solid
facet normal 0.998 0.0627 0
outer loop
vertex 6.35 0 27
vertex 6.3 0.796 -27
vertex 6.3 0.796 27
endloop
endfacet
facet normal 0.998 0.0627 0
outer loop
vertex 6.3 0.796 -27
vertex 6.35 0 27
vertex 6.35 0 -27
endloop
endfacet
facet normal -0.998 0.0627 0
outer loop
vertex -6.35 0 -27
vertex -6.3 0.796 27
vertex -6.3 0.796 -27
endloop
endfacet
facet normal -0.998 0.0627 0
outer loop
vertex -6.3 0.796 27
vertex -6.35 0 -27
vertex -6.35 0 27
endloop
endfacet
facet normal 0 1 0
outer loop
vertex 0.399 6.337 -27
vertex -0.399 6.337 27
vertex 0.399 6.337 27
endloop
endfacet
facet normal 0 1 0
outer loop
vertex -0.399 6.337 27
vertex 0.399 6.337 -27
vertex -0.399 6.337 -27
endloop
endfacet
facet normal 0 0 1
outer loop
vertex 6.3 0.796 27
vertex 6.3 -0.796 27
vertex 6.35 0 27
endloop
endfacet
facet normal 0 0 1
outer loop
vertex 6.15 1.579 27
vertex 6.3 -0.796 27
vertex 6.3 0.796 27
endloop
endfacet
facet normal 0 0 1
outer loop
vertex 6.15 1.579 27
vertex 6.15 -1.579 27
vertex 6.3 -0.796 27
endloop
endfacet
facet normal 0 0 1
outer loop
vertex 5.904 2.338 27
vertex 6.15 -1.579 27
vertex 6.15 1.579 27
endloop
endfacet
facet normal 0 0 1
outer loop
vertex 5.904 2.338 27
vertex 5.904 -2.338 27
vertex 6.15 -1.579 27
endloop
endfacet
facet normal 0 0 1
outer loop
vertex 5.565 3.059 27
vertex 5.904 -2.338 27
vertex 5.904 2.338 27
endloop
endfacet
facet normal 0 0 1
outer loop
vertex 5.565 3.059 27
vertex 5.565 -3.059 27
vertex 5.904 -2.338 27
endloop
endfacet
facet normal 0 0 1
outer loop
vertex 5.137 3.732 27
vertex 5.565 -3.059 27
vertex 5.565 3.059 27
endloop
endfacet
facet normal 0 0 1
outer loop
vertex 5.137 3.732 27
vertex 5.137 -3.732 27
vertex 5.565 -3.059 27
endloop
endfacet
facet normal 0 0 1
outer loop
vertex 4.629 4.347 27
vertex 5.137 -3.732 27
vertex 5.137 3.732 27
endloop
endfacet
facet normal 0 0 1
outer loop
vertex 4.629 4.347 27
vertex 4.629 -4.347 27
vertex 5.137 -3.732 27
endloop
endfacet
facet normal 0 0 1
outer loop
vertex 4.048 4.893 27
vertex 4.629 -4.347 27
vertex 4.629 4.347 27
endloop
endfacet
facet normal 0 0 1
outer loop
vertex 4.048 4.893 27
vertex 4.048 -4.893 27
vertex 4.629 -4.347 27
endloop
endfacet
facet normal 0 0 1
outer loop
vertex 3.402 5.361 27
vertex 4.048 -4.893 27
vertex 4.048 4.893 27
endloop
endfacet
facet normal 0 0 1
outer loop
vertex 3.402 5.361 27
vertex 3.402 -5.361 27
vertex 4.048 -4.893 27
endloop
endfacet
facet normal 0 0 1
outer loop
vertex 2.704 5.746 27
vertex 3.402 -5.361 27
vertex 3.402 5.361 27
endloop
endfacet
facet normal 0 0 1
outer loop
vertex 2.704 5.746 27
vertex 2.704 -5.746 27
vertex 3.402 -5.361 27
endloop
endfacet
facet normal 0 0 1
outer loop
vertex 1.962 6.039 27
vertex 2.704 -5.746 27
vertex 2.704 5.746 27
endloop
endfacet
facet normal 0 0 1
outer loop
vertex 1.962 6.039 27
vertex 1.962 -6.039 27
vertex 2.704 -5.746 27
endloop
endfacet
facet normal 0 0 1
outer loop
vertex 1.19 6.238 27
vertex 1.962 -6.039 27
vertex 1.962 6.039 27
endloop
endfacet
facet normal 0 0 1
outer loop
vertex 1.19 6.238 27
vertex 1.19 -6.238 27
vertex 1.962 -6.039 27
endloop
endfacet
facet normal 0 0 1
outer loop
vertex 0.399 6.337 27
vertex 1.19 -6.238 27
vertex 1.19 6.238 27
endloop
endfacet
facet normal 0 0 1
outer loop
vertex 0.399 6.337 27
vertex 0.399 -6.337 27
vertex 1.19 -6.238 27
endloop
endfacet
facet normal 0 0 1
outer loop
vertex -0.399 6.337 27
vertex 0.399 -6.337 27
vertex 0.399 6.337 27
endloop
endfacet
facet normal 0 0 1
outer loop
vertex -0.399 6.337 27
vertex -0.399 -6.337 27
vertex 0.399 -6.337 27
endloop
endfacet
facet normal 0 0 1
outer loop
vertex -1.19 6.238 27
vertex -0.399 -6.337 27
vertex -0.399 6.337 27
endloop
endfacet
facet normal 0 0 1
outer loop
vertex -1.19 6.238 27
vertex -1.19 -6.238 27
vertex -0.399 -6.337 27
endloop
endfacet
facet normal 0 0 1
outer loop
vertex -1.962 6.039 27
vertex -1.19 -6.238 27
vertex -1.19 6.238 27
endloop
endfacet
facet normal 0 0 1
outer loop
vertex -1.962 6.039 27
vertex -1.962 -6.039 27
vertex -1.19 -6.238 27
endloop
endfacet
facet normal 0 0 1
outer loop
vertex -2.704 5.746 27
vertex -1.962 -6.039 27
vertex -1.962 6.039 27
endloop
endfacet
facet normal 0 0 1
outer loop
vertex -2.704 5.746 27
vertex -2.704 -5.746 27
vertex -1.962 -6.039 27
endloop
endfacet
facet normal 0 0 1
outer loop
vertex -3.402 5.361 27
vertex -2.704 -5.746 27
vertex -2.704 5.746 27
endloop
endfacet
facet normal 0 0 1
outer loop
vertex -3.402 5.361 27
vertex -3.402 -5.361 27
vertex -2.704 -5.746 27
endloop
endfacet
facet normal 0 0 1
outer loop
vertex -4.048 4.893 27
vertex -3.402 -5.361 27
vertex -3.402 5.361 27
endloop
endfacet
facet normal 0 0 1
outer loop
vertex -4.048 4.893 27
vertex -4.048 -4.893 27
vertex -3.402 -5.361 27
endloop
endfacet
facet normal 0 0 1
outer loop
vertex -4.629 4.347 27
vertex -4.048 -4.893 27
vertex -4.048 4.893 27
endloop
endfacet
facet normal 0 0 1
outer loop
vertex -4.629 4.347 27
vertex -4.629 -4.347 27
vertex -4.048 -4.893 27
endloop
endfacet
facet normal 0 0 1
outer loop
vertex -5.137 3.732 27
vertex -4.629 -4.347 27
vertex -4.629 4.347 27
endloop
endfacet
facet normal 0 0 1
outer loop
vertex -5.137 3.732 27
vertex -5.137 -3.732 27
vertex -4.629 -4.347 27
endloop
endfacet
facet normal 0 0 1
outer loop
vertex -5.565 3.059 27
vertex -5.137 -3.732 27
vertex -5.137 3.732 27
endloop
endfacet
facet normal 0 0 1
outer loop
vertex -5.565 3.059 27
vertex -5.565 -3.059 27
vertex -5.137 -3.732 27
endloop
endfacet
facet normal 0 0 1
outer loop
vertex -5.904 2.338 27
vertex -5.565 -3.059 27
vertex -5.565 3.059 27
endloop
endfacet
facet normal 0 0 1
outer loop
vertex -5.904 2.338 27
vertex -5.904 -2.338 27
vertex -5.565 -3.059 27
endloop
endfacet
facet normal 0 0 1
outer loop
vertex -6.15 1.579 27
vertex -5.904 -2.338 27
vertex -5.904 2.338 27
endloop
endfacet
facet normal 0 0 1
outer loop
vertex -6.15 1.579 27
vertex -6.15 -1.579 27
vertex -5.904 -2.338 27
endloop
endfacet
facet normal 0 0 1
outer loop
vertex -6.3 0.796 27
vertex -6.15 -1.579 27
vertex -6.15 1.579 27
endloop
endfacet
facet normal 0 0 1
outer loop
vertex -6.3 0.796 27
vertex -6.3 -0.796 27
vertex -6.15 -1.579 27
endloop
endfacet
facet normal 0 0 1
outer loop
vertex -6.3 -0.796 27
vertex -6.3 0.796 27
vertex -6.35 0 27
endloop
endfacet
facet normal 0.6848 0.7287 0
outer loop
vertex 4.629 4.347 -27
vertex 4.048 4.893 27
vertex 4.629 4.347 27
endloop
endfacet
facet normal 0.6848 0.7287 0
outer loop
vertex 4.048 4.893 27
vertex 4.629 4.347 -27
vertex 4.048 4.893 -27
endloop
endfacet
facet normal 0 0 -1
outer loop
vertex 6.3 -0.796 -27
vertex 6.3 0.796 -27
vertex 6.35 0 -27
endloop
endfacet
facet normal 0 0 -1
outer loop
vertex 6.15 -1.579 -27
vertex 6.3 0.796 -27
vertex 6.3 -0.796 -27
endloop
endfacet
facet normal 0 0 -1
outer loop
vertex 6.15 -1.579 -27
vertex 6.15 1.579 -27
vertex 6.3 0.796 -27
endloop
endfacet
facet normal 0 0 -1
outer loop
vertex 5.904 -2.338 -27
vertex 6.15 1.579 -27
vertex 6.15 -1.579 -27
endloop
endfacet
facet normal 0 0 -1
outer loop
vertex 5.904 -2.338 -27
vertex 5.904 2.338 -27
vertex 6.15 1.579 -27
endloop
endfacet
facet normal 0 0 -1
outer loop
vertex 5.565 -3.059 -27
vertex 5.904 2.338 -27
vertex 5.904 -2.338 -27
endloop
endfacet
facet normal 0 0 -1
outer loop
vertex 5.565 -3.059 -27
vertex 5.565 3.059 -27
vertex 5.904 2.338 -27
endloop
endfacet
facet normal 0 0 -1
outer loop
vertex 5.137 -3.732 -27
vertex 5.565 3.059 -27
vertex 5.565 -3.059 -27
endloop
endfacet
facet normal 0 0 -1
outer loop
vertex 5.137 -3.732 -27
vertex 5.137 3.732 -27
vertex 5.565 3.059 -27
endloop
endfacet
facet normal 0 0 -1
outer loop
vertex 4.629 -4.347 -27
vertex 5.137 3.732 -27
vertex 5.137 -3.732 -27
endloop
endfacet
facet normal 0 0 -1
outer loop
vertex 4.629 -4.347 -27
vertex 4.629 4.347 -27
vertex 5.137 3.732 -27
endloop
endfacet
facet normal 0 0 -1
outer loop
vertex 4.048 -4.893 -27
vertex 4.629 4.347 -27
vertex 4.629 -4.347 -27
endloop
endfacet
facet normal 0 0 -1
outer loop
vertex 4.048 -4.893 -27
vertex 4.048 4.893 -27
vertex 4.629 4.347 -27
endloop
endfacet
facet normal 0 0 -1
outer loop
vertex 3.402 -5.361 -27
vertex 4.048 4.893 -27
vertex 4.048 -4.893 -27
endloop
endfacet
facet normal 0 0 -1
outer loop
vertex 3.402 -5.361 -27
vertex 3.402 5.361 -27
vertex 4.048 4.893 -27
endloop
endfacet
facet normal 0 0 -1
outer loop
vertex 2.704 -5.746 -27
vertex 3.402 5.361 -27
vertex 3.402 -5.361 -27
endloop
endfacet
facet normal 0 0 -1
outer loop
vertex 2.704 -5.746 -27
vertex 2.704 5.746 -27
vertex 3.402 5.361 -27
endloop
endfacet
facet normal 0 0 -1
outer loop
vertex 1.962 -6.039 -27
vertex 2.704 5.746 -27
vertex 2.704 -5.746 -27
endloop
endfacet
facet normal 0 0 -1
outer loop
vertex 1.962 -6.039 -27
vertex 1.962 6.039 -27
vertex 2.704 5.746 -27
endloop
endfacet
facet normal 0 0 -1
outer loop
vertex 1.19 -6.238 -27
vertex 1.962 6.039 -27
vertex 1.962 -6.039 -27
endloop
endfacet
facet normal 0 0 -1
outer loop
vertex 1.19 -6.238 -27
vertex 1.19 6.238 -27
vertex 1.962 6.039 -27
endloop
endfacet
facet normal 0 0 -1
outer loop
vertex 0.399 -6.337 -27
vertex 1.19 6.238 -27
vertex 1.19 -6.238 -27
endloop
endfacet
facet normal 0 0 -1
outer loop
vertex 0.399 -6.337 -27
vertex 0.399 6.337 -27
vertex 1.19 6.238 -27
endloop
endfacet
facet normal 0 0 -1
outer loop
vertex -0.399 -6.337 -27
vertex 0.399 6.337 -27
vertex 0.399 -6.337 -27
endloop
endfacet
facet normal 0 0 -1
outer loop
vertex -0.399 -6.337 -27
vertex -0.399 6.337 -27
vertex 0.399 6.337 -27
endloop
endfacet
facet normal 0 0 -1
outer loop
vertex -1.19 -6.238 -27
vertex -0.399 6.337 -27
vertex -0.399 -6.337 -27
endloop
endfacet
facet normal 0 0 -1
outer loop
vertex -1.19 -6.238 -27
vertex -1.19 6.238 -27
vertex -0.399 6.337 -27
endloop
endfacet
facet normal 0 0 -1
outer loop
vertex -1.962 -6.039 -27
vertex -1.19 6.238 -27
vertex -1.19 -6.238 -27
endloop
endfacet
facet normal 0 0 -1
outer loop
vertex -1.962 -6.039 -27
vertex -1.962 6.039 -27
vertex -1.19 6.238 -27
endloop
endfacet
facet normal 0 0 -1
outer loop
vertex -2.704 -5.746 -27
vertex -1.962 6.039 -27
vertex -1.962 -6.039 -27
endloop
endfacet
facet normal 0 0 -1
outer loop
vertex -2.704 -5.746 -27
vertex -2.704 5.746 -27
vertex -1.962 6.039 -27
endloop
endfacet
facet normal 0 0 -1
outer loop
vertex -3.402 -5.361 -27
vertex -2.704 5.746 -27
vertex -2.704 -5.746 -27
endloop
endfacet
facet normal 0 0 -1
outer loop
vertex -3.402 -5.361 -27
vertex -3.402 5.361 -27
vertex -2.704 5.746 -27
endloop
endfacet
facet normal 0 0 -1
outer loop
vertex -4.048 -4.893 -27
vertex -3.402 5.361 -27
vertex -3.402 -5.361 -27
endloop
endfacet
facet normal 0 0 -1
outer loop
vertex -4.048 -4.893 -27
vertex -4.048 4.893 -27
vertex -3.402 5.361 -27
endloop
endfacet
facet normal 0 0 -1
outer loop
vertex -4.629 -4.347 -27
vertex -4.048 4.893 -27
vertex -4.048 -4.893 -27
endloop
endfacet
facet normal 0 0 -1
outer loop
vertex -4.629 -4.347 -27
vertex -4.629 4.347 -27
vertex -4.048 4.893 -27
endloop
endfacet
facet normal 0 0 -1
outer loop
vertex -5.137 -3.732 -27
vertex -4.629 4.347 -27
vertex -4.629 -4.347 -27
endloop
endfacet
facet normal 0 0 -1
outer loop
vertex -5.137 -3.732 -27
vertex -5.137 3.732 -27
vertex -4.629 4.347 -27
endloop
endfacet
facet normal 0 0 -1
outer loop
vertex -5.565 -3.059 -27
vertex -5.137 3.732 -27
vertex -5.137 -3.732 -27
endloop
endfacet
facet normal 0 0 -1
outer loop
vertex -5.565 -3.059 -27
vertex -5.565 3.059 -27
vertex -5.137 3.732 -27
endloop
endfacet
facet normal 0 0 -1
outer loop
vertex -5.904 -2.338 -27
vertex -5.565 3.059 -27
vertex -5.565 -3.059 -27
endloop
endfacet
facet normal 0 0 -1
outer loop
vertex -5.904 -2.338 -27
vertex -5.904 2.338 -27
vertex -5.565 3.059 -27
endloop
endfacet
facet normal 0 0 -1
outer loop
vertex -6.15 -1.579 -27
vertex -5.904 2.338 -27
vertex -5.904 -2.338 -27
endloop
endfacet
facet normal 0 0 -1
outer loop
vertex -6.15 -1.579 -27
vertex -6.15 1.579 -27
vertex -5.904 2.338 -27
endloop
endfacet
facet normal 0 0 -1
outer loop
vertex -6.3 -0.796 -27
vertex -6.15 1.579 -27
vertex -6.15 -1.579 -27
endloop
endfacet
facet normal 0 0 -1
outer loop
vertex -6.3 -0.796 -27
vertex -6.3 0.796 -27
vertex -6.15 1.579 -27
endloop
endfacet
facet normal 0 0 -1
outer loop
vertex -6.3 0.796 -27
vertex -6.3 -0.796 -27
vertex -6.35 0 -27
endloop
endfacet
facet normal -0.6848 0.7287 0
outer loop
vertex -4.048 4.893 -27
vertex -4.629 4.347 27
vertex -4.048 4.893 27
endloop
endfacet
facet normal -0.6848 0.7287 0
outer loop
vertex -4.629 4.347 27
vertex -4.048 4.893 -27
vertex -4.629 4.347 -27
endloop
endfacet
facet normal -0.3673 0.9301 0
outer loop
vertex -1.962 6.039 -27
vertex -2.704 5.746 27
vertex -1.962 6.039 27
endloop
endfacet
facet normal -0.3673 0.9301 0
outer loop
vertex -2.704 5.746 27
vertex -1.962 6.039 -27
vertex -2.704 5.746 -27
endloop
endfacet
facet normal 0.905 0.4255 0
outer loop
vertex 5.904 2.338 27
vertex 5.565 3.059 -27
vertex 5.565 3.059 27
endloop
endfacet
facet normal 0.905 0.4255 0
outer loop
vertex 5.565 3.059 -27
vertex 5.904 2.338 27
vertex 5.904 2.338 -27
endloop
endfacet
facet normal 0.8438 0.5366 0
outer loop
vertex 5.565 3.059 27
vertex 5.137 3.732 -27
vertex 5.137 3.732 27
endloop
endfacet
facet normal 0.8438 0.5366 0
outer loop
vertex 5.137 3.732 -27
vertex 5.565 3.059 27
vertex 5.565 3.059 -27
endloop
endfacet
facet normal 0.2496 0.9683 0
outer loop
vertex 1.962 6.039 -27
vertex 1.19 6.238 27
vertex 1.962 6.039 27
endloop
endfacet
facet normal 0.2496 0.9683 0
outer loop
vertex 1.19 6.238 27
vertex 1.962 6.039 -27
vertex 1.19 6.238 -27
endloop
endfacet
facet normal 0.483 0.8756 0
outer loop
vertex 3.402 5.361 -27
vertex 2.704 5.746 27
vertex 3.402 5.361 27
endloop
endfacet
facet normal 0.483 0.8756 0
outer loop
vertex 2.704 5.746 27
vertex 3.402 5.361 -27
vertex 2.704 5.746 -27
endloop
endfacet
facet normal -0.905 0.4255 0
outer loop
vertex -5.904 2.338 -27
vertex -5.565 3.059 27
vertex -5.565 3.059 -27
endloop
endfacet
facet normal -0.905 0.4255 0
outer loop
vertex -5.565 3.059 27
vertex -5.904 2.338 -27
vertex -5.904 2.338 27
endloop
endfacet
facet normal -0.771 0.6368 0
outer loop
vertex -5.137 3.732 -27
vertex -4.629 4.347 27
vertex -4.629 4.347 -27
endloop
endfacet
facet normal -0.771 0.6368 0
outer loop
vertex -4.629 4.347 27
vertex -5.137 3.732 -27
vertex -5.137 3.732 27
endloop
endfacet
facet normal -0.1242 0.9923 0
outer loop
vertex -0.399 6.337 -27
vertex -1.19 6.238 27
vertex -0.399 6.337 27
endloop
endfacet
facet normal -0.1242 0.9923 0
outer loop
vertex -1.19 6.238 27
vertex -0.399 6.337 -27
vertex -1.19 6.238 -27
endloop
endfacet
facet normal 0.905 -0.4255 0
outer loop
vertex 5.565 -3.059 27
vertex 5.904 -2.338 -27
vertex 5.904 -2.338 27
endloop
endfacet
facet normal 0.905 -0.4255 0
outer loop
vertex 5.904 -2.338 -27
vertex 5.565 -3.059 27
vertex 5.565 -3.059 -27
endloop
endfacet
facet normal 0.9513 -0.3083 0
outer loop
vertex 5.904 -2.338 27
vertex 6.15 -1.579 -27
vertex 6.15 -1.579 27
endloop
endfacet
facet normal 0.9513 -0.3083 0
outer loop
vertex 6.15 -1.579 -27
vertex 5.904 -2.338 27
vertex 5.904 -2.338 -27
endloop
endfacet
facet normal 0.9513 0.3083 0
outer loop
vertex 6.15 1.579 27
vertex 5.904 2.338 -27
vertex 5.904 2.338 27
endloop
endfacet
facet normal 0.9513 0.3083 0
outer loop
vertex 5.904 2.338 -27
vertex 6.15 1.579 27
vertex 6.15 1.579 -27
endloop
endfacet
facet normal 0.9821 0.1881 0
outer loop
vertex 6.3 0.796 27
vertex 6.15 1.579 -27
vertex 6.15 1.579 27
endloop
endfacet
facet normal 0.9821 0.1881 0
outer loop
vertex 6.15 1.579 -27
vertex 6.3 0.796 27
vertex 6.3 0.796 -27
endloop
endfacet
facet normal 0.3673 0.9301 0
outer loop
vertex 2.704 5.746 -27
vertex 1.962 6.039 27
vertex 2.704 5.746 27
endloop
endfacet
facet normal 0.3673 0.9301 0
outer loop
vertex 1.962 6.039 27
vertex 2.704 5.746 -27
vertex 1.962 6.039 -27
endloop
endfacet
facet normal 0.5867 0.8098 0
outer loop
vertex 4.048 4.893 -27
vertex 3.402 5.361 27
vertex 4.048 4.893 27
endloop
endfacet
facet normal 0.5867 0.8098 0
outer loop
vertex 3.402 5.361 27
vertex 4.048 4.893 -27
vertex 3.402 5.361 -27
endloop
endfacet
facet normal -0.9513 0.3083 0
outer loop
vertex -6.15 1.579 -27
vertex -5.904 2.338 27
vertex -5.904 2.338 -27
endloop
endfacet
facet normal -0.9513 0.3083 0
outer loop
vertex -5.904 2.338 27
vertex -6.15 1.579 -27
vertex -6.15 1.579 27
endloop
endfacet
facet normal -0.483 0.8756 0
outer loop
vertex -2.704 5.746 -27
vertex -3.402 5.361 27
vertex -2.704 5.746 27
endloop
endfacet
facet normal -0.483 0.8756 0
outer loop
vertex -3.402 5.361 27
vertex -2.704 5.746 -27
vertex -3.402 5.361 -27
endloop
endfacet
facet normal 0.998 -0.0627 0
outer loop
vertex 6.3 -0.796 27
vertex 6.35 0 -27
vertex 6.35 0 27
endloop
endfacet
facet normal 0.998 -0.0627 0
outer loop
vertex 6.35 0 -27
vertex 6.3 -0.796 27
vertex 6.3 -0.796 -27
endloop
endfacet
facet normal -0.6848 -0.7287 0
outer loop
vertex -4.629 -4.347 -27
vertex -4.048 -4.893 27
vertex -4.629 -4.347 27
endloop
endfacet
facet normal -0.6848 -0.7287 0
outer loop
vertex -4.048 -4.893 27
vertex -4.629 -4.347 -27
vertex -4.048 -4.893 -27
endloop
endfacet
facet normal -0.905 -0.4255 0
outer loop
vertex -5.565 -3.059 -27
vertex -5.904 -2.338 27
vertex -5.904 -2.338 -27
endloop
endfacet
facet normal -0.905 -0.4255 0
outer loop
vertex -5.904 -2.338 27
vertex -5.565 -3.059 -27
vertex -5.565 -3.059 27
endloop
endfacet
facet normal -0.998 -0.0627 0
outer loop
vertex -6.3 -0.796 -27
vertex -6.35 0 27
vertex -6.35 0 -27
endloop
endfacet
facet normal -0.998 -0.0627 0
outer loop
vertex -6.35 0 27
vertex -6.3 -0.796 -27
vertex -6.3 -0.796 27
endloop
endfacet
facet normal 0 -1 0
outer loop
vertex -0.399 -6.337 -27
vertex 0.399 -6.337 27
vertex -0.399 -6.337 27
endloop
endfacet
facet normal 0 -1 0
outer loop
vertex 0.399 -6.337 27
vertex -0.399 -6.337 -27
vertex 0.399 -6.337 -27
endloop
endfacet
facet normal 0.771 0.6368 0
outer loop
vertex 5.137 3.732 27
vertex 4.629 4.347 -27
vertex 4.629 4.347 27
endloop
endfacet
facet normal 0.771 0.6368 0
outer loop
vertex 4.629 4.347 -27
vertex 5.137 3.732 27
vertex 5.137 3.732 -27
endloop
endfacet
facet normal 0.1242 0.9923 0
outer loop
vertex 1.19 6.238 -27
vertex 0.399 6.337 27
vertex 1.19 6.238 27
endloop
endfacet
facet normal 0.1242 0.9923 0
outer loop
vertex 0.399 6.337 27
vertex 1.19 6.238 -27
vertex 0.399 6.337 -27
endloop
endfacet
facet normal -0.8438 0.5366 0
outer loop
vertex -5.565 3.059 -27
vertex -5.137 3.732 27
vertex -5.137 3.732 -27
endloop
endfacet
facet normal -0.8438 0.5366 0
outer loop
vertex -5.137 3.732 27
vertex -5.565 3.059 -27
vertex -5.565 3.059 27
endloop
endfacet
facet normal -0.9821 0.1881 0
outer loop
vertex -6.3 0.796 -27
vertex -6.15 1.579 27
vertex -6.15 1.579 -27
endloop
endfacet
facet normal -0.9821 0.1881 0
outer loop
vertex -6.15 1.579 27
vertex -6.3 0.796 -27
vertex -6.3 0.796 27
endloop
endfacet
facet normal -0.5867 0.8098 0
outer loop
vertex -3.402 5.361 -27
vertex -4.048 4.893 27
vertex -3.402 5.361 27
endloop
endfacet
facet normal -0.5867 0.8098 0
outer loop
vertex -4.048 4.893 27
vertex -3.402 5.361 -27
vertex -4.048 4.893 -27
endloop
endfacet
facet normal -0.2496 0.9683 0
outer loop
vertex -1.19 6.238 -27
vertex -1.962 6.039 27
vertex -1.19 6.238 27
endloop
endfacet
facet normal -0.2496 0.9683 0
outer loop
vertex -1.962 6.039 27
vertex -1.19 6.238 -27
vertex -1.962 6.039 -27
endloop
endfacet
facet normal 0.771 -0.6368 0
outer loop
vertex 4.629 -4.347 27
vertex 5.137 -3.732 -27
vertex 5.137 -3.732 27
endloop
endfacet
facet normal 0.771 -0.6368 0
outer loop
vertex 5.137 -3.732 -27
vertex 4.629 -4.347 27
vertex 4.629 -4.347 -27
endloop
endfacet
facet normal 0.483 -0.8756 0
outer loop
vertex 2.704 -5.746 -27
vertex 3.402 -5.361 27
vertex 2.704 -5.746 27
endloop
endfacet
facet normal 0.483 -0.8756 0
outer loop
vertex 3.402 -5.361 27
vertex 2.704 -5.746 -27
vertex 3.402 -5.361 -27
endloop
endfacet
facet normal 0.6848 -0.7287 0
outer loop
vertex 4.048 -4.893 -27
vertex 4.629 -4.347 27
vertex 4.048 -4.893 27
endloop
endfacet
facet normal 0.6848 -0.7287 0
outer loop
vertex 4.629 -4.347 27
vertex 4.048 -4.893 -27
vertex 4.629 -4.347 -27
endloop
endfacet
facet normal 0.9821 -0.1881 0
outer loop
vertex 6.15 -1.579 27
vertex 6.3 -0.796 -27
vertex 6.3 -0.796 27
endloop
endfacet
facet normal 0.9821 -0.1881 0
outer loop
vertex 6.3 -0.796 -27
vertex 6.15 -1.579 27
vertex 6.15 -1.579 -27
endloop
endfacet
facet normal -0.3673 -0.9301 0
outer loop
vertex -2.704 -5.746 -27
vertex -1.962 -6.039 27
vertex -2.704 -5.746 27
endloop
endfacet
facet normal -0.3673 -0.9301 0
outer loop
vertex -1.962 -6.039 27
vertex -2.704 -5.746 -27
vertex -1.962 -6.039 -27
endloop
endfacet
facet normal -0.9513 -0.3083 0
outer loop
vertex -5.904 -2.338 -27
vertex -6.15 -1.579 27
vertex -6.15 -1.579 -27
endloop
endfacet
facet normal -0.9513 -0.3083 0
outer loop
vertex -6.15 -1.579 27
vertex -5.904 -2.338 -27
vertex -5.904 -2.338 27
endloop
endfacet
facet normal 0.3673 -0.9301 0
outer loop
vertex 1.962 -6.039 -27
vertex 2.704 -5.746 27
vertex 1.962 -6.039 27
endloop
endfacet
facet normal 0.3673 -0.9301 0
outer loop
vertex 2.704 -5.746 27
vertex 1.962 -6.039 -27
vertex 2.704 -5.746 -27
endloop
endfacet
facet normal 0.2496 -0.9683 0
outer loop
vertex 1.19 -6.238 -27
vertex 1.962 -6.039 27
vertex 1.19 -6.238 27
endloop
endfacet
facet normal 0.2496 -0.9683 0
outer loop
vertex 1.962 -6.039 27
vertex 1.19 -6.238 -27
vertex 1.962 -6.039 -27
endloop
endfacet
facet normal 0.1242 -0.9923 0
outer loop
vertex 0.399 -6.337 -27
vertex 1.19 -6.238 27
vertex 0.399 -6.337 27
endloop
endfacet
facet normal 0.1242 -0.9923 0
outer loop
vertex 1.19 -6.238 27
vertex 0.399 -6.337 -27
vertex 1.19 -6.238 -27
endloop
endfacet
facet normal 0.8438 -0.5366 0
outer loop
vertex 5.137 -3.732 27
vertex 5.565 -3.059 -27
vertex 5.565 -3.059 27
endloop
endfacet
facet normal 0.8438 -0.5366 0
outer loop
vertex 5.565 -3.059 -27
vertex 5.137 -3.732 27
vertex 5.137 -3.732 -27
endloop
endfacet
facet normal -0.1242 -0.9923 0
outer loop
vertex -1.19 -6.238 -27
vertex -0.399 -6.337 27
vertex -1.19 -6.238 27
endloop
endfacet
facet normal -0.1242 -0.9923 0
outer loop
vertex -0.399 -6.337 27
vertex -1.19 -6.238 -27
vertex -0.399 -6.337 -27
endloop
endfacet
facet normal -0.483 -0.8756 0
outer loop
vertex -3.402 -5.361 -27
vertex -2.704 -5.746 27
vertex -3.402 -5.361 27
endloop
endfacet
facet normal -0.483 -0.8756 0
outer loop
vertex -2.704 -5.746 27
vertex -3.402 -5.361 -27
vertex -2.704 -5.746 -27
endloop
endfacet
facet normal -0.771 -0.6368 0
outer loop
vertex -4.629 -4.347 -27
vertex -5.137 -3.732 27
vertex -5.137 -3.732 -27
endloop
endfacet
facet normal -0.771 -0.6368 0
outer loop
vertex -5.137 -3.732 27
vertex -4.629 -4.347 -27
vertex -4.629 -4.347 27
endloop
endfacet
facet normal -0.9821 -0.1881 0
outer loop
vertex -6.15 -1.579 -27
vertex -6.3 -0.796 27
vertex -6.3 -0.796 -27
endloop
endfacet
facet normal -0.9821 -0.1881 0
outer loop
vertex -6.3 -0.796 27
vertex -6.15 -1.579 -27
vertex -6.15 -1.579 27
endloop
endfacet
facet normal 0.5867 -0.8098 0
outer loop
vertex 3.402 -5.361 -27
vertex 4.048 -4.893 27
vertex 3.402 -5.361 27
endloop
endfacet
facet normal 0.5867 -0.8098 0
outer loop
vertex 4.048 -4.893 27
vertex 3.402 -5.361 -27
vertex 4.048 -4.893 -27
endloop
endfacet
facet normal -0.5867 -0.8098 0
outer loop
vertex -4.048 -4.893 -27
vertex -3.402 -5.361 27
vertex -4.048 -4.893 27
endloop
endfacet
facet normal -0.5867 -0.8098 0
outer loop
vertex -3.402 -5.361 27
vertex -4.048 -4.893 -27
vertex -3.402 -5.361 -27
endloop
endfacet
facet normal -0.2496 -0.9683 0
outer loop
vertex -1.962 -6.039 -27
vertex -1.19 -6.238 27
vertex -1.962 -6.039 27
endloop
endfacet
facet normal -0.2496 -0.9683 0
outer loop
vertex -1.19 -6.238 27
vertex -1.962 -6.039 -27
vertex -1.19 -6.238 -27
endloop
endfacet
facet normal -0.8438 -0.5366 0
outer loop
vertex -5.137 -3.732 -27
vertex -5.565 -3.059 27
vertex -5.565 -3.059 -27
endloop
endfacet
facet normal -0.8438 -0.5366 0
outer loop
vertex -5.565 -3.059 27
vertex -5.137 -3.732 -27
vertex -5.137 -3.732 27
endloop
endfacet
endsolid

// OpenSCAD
$fn = 50;


difference() {
	union() {
		translate(v = [0, 0, -27.0000000000]) {
			cylinder(h = 54, r = 6.3500000000);
		}
	}
	union() {
		translate(v = [0, 0, -100.0000000000]) {
			cylinder(h = 200, r = 0);
		}
	}
}
